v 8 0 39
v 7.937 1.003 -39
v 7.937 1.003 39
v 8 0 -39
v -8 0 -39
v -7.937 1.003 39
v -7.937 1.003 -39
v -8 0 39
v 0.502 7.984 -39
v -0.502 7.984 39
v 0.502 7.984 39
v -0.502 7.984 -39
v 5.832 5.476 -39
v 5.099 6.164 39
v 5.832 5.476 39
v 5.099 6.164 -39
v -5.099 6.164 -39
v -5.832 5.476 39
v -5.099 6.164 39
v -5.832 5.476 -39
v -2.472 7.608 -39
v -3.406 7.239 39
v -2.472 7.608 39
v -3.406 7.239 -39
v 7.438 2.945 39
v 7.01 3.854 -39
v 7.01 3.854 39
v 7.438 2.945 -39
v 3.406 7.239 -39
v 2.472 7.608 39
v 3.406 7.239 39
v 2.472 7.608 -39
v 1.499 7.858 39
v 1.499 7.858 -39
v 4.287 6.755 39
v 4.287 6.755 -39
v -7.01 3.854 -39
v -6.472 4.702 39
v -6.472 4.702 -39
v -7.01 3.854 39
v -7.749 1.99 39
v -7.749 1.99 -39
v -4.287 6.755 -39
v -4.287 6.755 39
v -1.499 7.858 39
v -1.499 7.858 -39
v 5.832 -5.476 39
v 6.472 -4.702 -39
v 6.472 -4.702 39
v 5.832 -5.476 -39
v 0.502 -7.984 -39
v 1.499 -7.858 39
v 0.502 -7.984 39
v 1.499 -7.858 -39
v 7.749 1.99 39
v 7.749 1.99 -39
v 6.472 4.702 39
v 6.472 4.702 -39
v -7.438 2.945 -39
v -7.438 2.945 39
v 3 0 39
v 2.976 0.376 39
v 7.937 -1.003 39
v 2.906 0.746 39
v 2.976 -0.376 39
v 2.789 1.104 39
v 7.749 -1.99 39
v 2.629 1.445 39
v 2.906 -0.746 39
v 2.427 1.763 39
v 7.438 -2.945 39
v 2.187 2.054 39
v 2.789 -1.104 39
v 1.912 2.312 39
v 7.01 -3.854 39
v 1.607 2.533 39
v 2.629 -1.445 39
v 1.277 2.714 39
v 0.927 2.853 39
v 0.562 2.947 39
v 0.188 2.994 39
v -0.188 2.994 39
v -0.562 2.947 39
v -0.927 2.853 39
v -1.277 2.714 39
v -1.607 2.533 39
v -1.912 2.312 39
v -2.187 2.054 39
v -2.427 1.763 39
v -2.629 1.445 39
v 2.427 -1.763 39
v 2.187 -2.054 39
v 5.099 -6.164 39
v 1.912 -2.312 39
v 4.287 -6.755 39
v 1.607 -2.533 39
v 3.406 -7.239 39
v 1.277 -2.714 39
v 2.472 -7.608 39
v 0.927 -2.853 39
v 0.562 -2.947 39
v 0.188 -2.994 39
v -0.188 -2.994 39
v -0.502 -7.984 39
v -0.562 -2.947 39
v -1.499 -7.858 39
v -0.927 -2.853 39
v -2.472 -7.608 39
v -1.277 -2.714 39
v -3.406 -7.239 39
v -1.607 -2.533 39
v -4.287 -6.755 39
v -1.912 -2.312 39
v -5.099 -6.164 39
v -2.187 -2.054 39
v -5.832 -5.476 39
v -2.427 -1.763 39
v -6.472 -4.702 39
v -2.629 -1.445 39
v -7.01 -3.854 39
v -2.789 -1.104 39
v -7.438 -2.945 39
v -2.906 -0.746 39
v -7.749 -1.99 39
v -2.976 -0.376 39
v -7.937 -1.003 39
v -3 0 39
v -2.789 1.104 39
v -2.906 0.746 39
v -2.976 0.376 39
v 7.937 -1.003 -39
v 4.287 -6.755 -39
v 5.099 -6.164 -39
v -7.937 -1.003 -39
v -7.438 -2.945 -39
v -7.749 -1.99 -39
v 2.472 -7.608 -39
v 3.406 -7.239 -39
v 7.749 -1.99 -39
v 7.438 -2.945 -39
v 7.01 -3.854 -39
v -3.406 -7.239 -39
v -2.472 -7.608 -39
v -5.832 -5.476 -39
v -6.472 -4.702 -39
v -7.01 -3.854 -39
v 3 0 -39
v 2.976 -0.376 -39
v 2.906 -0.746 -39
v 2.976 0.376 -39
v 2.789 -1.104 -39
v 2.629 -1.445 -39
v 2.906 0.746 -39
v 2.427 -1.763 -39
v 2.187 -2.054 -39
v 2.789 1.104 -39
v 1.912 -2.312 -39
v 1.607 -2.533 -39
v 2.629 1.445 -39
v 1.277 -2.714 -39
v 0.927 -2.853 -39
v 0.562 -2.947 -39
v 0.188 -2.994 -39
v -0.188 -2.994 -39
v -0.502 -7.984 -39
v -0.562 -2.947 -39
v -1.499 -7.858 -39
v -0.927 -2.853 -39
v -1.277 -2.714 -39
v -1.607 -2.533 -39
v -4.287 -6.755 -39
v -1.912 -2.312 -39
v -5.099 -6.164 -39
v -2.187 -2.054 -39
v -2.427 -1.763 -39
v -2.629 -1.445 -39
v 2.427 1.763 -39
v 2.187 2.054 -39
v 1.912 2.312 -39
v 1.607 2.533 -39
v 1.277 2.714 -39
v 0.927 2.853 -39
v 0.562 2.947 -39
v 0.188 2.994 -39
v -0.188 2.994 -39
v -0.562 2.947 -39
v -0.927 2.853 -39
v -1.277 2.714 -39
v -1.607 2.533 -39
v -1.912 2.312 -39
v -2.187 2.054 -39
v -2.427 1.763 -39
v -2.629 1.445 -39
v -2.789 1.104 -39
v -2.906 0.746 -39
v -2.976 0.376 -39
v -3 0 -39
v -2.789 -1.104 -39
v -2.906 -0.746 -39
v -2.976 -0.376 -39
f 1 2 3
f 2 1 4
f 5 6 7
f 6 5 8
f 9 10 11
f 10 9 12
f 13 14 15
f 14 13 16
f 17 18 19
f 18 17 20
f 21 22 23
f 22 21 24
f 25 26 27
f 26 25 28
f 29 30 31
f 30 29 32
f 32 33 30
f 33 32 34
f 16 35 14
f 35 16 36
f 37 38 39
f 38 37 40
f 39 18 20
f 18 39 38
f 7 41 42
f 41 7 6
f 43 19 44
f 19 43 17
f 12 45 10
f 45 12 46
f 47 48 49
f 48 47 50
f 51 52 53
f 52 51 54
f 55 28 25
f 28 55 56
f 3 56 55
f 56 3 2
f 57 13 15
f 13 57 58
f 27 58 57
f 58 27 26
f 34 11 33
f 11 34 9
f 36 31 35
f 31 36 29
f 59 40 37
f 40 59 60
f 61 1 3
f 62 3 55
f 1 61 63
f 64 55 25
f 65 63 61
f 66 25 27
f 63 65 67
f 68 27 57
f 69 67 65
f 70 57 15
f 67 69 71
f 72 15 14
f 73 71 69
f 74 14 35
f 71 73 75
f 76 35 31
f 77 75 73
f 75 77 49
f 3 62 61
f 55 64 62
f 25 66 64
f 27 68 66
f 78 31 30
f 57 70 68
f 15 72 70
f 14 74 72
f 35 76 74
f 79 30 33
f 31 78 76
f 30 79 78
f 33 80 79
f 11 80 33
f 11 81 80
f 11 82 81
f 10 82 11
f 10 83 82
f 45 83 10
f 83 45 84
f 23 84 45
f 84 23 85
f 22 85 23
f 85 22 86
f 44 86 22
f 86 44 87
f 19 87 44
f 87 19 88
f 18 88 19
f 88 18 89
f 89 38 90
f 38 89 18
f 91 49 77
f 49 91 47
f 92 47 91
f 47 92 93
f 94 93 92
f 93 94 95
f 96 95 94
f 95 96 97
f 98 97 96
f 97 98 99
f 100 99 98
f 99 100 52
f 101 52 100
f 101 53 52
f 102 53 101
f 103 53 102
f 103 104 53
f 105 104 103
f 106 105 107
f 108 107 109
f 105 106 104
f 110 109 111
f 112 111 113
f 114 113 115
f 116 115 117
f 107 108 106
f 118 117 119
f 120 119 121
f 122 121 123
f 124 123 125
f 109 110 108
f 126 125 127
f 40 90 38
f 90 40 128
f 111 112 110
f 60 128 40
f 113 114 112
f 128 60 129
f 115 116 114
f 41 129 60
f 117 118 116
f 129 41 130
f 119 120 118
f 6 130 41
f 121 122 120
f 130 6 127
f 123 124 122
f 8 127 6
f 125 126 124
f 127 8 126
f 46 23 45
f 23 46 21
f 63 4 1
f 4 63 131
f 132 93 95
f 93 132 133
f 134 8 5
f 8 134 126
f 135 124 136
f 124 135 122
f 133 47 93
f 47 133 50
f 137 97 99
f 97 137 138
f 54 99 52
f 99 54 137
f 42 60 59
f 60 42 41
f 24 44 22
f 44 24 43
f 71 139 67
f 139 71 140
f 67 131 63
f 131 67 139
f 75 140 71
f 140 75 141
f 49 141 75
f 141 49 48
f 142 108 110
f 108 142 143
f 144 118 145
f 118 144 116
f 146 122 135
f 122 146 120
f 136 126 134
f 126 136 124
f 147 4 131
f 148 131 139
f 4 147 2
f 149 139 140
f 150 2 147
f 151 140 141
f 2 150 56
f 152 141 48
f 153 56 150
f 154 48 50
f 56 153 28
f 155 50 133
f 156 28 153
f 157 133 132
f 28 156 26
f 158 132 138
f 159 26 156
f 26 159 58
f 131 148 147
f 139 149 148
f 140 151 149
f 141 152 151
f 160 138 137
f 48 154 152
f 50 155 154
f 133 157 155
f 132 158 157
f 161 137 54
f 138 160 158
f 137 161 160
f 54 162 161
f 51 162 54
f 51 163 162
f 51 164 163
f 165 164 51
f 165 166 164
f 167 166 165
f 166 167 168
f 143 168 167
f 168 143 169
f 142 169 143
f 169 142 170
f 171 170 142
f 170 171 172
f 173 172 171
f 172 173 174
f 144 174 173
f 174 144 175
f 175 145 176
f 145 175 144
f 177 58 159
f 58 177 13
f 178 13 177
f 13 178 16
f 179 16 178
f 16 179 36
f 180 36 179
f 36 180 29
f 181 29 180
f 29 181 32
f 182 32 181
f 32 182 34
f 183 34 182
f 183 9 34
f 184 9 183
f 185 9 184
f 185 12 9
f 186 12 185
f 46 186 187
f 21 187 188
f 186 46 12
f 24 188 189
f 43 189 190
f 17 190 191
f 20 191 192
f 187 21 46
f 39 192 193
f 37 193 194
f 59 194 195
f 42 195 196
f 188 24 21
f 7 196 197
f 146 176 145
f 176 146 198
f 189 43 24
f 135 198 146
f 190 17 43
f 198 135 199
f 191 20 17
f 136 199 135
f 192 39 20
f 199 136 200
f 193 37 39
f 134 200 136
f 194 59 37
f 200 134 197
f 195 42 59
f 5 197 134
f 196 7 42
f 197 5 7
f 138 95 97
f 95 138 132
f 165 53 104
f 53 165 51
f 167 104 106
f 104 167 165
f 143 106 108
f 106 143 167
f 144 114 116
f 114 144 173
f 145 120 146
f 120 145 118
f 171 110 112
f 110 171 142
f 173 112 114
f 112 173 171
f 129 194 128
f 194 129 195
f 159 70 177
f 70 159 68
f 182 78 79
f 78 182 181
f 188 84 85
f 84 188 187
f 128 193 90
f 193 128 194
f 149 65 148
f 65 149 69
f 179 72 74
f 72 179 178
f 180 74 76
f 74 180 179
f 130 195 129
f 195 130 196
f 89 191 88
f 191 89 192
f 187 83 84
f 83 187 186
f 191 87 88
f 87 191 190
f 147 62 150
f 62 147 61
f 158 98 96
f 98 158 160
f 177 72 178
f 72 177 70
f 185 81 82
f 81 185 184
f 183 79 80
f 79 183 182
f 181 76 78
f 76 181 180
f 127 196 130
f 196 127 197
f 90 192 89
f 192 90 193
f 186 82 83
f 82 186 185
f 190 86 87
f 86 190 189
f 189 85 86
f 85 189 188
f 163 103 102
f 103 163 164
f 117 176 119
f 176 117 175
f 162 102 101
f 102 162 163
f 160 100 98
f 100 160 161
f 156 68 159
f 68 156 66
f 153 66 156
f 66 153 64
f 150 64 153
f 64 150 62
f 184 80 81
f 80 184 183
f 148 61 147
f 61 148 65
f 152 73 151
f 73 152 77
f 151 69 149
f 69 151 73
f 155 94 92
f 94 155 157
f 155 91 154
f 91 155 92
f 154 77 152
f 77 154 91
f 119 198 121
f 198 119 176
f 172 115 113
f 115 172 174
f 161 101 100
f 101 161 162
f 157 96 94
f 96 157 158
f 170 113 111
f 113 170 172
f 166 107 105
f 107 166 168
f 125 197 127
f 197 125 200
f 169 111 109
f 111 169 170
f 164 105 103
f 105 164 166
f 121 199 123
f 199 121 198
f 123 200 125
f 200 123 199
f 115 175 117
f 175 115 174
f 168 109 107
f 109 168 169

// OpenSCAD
$fn = 50;


difference() {
	union() {
		translate(v = [0, 0, -39.0000000000]) {
			cylinder(h = 78, r = 8.0000000000);
		}
	}
	union() {
		translate(v = [0, 0, -100.0000000000]) {
			cylinder(h = 200, r = 3.0000000000);
		}
	}
}
